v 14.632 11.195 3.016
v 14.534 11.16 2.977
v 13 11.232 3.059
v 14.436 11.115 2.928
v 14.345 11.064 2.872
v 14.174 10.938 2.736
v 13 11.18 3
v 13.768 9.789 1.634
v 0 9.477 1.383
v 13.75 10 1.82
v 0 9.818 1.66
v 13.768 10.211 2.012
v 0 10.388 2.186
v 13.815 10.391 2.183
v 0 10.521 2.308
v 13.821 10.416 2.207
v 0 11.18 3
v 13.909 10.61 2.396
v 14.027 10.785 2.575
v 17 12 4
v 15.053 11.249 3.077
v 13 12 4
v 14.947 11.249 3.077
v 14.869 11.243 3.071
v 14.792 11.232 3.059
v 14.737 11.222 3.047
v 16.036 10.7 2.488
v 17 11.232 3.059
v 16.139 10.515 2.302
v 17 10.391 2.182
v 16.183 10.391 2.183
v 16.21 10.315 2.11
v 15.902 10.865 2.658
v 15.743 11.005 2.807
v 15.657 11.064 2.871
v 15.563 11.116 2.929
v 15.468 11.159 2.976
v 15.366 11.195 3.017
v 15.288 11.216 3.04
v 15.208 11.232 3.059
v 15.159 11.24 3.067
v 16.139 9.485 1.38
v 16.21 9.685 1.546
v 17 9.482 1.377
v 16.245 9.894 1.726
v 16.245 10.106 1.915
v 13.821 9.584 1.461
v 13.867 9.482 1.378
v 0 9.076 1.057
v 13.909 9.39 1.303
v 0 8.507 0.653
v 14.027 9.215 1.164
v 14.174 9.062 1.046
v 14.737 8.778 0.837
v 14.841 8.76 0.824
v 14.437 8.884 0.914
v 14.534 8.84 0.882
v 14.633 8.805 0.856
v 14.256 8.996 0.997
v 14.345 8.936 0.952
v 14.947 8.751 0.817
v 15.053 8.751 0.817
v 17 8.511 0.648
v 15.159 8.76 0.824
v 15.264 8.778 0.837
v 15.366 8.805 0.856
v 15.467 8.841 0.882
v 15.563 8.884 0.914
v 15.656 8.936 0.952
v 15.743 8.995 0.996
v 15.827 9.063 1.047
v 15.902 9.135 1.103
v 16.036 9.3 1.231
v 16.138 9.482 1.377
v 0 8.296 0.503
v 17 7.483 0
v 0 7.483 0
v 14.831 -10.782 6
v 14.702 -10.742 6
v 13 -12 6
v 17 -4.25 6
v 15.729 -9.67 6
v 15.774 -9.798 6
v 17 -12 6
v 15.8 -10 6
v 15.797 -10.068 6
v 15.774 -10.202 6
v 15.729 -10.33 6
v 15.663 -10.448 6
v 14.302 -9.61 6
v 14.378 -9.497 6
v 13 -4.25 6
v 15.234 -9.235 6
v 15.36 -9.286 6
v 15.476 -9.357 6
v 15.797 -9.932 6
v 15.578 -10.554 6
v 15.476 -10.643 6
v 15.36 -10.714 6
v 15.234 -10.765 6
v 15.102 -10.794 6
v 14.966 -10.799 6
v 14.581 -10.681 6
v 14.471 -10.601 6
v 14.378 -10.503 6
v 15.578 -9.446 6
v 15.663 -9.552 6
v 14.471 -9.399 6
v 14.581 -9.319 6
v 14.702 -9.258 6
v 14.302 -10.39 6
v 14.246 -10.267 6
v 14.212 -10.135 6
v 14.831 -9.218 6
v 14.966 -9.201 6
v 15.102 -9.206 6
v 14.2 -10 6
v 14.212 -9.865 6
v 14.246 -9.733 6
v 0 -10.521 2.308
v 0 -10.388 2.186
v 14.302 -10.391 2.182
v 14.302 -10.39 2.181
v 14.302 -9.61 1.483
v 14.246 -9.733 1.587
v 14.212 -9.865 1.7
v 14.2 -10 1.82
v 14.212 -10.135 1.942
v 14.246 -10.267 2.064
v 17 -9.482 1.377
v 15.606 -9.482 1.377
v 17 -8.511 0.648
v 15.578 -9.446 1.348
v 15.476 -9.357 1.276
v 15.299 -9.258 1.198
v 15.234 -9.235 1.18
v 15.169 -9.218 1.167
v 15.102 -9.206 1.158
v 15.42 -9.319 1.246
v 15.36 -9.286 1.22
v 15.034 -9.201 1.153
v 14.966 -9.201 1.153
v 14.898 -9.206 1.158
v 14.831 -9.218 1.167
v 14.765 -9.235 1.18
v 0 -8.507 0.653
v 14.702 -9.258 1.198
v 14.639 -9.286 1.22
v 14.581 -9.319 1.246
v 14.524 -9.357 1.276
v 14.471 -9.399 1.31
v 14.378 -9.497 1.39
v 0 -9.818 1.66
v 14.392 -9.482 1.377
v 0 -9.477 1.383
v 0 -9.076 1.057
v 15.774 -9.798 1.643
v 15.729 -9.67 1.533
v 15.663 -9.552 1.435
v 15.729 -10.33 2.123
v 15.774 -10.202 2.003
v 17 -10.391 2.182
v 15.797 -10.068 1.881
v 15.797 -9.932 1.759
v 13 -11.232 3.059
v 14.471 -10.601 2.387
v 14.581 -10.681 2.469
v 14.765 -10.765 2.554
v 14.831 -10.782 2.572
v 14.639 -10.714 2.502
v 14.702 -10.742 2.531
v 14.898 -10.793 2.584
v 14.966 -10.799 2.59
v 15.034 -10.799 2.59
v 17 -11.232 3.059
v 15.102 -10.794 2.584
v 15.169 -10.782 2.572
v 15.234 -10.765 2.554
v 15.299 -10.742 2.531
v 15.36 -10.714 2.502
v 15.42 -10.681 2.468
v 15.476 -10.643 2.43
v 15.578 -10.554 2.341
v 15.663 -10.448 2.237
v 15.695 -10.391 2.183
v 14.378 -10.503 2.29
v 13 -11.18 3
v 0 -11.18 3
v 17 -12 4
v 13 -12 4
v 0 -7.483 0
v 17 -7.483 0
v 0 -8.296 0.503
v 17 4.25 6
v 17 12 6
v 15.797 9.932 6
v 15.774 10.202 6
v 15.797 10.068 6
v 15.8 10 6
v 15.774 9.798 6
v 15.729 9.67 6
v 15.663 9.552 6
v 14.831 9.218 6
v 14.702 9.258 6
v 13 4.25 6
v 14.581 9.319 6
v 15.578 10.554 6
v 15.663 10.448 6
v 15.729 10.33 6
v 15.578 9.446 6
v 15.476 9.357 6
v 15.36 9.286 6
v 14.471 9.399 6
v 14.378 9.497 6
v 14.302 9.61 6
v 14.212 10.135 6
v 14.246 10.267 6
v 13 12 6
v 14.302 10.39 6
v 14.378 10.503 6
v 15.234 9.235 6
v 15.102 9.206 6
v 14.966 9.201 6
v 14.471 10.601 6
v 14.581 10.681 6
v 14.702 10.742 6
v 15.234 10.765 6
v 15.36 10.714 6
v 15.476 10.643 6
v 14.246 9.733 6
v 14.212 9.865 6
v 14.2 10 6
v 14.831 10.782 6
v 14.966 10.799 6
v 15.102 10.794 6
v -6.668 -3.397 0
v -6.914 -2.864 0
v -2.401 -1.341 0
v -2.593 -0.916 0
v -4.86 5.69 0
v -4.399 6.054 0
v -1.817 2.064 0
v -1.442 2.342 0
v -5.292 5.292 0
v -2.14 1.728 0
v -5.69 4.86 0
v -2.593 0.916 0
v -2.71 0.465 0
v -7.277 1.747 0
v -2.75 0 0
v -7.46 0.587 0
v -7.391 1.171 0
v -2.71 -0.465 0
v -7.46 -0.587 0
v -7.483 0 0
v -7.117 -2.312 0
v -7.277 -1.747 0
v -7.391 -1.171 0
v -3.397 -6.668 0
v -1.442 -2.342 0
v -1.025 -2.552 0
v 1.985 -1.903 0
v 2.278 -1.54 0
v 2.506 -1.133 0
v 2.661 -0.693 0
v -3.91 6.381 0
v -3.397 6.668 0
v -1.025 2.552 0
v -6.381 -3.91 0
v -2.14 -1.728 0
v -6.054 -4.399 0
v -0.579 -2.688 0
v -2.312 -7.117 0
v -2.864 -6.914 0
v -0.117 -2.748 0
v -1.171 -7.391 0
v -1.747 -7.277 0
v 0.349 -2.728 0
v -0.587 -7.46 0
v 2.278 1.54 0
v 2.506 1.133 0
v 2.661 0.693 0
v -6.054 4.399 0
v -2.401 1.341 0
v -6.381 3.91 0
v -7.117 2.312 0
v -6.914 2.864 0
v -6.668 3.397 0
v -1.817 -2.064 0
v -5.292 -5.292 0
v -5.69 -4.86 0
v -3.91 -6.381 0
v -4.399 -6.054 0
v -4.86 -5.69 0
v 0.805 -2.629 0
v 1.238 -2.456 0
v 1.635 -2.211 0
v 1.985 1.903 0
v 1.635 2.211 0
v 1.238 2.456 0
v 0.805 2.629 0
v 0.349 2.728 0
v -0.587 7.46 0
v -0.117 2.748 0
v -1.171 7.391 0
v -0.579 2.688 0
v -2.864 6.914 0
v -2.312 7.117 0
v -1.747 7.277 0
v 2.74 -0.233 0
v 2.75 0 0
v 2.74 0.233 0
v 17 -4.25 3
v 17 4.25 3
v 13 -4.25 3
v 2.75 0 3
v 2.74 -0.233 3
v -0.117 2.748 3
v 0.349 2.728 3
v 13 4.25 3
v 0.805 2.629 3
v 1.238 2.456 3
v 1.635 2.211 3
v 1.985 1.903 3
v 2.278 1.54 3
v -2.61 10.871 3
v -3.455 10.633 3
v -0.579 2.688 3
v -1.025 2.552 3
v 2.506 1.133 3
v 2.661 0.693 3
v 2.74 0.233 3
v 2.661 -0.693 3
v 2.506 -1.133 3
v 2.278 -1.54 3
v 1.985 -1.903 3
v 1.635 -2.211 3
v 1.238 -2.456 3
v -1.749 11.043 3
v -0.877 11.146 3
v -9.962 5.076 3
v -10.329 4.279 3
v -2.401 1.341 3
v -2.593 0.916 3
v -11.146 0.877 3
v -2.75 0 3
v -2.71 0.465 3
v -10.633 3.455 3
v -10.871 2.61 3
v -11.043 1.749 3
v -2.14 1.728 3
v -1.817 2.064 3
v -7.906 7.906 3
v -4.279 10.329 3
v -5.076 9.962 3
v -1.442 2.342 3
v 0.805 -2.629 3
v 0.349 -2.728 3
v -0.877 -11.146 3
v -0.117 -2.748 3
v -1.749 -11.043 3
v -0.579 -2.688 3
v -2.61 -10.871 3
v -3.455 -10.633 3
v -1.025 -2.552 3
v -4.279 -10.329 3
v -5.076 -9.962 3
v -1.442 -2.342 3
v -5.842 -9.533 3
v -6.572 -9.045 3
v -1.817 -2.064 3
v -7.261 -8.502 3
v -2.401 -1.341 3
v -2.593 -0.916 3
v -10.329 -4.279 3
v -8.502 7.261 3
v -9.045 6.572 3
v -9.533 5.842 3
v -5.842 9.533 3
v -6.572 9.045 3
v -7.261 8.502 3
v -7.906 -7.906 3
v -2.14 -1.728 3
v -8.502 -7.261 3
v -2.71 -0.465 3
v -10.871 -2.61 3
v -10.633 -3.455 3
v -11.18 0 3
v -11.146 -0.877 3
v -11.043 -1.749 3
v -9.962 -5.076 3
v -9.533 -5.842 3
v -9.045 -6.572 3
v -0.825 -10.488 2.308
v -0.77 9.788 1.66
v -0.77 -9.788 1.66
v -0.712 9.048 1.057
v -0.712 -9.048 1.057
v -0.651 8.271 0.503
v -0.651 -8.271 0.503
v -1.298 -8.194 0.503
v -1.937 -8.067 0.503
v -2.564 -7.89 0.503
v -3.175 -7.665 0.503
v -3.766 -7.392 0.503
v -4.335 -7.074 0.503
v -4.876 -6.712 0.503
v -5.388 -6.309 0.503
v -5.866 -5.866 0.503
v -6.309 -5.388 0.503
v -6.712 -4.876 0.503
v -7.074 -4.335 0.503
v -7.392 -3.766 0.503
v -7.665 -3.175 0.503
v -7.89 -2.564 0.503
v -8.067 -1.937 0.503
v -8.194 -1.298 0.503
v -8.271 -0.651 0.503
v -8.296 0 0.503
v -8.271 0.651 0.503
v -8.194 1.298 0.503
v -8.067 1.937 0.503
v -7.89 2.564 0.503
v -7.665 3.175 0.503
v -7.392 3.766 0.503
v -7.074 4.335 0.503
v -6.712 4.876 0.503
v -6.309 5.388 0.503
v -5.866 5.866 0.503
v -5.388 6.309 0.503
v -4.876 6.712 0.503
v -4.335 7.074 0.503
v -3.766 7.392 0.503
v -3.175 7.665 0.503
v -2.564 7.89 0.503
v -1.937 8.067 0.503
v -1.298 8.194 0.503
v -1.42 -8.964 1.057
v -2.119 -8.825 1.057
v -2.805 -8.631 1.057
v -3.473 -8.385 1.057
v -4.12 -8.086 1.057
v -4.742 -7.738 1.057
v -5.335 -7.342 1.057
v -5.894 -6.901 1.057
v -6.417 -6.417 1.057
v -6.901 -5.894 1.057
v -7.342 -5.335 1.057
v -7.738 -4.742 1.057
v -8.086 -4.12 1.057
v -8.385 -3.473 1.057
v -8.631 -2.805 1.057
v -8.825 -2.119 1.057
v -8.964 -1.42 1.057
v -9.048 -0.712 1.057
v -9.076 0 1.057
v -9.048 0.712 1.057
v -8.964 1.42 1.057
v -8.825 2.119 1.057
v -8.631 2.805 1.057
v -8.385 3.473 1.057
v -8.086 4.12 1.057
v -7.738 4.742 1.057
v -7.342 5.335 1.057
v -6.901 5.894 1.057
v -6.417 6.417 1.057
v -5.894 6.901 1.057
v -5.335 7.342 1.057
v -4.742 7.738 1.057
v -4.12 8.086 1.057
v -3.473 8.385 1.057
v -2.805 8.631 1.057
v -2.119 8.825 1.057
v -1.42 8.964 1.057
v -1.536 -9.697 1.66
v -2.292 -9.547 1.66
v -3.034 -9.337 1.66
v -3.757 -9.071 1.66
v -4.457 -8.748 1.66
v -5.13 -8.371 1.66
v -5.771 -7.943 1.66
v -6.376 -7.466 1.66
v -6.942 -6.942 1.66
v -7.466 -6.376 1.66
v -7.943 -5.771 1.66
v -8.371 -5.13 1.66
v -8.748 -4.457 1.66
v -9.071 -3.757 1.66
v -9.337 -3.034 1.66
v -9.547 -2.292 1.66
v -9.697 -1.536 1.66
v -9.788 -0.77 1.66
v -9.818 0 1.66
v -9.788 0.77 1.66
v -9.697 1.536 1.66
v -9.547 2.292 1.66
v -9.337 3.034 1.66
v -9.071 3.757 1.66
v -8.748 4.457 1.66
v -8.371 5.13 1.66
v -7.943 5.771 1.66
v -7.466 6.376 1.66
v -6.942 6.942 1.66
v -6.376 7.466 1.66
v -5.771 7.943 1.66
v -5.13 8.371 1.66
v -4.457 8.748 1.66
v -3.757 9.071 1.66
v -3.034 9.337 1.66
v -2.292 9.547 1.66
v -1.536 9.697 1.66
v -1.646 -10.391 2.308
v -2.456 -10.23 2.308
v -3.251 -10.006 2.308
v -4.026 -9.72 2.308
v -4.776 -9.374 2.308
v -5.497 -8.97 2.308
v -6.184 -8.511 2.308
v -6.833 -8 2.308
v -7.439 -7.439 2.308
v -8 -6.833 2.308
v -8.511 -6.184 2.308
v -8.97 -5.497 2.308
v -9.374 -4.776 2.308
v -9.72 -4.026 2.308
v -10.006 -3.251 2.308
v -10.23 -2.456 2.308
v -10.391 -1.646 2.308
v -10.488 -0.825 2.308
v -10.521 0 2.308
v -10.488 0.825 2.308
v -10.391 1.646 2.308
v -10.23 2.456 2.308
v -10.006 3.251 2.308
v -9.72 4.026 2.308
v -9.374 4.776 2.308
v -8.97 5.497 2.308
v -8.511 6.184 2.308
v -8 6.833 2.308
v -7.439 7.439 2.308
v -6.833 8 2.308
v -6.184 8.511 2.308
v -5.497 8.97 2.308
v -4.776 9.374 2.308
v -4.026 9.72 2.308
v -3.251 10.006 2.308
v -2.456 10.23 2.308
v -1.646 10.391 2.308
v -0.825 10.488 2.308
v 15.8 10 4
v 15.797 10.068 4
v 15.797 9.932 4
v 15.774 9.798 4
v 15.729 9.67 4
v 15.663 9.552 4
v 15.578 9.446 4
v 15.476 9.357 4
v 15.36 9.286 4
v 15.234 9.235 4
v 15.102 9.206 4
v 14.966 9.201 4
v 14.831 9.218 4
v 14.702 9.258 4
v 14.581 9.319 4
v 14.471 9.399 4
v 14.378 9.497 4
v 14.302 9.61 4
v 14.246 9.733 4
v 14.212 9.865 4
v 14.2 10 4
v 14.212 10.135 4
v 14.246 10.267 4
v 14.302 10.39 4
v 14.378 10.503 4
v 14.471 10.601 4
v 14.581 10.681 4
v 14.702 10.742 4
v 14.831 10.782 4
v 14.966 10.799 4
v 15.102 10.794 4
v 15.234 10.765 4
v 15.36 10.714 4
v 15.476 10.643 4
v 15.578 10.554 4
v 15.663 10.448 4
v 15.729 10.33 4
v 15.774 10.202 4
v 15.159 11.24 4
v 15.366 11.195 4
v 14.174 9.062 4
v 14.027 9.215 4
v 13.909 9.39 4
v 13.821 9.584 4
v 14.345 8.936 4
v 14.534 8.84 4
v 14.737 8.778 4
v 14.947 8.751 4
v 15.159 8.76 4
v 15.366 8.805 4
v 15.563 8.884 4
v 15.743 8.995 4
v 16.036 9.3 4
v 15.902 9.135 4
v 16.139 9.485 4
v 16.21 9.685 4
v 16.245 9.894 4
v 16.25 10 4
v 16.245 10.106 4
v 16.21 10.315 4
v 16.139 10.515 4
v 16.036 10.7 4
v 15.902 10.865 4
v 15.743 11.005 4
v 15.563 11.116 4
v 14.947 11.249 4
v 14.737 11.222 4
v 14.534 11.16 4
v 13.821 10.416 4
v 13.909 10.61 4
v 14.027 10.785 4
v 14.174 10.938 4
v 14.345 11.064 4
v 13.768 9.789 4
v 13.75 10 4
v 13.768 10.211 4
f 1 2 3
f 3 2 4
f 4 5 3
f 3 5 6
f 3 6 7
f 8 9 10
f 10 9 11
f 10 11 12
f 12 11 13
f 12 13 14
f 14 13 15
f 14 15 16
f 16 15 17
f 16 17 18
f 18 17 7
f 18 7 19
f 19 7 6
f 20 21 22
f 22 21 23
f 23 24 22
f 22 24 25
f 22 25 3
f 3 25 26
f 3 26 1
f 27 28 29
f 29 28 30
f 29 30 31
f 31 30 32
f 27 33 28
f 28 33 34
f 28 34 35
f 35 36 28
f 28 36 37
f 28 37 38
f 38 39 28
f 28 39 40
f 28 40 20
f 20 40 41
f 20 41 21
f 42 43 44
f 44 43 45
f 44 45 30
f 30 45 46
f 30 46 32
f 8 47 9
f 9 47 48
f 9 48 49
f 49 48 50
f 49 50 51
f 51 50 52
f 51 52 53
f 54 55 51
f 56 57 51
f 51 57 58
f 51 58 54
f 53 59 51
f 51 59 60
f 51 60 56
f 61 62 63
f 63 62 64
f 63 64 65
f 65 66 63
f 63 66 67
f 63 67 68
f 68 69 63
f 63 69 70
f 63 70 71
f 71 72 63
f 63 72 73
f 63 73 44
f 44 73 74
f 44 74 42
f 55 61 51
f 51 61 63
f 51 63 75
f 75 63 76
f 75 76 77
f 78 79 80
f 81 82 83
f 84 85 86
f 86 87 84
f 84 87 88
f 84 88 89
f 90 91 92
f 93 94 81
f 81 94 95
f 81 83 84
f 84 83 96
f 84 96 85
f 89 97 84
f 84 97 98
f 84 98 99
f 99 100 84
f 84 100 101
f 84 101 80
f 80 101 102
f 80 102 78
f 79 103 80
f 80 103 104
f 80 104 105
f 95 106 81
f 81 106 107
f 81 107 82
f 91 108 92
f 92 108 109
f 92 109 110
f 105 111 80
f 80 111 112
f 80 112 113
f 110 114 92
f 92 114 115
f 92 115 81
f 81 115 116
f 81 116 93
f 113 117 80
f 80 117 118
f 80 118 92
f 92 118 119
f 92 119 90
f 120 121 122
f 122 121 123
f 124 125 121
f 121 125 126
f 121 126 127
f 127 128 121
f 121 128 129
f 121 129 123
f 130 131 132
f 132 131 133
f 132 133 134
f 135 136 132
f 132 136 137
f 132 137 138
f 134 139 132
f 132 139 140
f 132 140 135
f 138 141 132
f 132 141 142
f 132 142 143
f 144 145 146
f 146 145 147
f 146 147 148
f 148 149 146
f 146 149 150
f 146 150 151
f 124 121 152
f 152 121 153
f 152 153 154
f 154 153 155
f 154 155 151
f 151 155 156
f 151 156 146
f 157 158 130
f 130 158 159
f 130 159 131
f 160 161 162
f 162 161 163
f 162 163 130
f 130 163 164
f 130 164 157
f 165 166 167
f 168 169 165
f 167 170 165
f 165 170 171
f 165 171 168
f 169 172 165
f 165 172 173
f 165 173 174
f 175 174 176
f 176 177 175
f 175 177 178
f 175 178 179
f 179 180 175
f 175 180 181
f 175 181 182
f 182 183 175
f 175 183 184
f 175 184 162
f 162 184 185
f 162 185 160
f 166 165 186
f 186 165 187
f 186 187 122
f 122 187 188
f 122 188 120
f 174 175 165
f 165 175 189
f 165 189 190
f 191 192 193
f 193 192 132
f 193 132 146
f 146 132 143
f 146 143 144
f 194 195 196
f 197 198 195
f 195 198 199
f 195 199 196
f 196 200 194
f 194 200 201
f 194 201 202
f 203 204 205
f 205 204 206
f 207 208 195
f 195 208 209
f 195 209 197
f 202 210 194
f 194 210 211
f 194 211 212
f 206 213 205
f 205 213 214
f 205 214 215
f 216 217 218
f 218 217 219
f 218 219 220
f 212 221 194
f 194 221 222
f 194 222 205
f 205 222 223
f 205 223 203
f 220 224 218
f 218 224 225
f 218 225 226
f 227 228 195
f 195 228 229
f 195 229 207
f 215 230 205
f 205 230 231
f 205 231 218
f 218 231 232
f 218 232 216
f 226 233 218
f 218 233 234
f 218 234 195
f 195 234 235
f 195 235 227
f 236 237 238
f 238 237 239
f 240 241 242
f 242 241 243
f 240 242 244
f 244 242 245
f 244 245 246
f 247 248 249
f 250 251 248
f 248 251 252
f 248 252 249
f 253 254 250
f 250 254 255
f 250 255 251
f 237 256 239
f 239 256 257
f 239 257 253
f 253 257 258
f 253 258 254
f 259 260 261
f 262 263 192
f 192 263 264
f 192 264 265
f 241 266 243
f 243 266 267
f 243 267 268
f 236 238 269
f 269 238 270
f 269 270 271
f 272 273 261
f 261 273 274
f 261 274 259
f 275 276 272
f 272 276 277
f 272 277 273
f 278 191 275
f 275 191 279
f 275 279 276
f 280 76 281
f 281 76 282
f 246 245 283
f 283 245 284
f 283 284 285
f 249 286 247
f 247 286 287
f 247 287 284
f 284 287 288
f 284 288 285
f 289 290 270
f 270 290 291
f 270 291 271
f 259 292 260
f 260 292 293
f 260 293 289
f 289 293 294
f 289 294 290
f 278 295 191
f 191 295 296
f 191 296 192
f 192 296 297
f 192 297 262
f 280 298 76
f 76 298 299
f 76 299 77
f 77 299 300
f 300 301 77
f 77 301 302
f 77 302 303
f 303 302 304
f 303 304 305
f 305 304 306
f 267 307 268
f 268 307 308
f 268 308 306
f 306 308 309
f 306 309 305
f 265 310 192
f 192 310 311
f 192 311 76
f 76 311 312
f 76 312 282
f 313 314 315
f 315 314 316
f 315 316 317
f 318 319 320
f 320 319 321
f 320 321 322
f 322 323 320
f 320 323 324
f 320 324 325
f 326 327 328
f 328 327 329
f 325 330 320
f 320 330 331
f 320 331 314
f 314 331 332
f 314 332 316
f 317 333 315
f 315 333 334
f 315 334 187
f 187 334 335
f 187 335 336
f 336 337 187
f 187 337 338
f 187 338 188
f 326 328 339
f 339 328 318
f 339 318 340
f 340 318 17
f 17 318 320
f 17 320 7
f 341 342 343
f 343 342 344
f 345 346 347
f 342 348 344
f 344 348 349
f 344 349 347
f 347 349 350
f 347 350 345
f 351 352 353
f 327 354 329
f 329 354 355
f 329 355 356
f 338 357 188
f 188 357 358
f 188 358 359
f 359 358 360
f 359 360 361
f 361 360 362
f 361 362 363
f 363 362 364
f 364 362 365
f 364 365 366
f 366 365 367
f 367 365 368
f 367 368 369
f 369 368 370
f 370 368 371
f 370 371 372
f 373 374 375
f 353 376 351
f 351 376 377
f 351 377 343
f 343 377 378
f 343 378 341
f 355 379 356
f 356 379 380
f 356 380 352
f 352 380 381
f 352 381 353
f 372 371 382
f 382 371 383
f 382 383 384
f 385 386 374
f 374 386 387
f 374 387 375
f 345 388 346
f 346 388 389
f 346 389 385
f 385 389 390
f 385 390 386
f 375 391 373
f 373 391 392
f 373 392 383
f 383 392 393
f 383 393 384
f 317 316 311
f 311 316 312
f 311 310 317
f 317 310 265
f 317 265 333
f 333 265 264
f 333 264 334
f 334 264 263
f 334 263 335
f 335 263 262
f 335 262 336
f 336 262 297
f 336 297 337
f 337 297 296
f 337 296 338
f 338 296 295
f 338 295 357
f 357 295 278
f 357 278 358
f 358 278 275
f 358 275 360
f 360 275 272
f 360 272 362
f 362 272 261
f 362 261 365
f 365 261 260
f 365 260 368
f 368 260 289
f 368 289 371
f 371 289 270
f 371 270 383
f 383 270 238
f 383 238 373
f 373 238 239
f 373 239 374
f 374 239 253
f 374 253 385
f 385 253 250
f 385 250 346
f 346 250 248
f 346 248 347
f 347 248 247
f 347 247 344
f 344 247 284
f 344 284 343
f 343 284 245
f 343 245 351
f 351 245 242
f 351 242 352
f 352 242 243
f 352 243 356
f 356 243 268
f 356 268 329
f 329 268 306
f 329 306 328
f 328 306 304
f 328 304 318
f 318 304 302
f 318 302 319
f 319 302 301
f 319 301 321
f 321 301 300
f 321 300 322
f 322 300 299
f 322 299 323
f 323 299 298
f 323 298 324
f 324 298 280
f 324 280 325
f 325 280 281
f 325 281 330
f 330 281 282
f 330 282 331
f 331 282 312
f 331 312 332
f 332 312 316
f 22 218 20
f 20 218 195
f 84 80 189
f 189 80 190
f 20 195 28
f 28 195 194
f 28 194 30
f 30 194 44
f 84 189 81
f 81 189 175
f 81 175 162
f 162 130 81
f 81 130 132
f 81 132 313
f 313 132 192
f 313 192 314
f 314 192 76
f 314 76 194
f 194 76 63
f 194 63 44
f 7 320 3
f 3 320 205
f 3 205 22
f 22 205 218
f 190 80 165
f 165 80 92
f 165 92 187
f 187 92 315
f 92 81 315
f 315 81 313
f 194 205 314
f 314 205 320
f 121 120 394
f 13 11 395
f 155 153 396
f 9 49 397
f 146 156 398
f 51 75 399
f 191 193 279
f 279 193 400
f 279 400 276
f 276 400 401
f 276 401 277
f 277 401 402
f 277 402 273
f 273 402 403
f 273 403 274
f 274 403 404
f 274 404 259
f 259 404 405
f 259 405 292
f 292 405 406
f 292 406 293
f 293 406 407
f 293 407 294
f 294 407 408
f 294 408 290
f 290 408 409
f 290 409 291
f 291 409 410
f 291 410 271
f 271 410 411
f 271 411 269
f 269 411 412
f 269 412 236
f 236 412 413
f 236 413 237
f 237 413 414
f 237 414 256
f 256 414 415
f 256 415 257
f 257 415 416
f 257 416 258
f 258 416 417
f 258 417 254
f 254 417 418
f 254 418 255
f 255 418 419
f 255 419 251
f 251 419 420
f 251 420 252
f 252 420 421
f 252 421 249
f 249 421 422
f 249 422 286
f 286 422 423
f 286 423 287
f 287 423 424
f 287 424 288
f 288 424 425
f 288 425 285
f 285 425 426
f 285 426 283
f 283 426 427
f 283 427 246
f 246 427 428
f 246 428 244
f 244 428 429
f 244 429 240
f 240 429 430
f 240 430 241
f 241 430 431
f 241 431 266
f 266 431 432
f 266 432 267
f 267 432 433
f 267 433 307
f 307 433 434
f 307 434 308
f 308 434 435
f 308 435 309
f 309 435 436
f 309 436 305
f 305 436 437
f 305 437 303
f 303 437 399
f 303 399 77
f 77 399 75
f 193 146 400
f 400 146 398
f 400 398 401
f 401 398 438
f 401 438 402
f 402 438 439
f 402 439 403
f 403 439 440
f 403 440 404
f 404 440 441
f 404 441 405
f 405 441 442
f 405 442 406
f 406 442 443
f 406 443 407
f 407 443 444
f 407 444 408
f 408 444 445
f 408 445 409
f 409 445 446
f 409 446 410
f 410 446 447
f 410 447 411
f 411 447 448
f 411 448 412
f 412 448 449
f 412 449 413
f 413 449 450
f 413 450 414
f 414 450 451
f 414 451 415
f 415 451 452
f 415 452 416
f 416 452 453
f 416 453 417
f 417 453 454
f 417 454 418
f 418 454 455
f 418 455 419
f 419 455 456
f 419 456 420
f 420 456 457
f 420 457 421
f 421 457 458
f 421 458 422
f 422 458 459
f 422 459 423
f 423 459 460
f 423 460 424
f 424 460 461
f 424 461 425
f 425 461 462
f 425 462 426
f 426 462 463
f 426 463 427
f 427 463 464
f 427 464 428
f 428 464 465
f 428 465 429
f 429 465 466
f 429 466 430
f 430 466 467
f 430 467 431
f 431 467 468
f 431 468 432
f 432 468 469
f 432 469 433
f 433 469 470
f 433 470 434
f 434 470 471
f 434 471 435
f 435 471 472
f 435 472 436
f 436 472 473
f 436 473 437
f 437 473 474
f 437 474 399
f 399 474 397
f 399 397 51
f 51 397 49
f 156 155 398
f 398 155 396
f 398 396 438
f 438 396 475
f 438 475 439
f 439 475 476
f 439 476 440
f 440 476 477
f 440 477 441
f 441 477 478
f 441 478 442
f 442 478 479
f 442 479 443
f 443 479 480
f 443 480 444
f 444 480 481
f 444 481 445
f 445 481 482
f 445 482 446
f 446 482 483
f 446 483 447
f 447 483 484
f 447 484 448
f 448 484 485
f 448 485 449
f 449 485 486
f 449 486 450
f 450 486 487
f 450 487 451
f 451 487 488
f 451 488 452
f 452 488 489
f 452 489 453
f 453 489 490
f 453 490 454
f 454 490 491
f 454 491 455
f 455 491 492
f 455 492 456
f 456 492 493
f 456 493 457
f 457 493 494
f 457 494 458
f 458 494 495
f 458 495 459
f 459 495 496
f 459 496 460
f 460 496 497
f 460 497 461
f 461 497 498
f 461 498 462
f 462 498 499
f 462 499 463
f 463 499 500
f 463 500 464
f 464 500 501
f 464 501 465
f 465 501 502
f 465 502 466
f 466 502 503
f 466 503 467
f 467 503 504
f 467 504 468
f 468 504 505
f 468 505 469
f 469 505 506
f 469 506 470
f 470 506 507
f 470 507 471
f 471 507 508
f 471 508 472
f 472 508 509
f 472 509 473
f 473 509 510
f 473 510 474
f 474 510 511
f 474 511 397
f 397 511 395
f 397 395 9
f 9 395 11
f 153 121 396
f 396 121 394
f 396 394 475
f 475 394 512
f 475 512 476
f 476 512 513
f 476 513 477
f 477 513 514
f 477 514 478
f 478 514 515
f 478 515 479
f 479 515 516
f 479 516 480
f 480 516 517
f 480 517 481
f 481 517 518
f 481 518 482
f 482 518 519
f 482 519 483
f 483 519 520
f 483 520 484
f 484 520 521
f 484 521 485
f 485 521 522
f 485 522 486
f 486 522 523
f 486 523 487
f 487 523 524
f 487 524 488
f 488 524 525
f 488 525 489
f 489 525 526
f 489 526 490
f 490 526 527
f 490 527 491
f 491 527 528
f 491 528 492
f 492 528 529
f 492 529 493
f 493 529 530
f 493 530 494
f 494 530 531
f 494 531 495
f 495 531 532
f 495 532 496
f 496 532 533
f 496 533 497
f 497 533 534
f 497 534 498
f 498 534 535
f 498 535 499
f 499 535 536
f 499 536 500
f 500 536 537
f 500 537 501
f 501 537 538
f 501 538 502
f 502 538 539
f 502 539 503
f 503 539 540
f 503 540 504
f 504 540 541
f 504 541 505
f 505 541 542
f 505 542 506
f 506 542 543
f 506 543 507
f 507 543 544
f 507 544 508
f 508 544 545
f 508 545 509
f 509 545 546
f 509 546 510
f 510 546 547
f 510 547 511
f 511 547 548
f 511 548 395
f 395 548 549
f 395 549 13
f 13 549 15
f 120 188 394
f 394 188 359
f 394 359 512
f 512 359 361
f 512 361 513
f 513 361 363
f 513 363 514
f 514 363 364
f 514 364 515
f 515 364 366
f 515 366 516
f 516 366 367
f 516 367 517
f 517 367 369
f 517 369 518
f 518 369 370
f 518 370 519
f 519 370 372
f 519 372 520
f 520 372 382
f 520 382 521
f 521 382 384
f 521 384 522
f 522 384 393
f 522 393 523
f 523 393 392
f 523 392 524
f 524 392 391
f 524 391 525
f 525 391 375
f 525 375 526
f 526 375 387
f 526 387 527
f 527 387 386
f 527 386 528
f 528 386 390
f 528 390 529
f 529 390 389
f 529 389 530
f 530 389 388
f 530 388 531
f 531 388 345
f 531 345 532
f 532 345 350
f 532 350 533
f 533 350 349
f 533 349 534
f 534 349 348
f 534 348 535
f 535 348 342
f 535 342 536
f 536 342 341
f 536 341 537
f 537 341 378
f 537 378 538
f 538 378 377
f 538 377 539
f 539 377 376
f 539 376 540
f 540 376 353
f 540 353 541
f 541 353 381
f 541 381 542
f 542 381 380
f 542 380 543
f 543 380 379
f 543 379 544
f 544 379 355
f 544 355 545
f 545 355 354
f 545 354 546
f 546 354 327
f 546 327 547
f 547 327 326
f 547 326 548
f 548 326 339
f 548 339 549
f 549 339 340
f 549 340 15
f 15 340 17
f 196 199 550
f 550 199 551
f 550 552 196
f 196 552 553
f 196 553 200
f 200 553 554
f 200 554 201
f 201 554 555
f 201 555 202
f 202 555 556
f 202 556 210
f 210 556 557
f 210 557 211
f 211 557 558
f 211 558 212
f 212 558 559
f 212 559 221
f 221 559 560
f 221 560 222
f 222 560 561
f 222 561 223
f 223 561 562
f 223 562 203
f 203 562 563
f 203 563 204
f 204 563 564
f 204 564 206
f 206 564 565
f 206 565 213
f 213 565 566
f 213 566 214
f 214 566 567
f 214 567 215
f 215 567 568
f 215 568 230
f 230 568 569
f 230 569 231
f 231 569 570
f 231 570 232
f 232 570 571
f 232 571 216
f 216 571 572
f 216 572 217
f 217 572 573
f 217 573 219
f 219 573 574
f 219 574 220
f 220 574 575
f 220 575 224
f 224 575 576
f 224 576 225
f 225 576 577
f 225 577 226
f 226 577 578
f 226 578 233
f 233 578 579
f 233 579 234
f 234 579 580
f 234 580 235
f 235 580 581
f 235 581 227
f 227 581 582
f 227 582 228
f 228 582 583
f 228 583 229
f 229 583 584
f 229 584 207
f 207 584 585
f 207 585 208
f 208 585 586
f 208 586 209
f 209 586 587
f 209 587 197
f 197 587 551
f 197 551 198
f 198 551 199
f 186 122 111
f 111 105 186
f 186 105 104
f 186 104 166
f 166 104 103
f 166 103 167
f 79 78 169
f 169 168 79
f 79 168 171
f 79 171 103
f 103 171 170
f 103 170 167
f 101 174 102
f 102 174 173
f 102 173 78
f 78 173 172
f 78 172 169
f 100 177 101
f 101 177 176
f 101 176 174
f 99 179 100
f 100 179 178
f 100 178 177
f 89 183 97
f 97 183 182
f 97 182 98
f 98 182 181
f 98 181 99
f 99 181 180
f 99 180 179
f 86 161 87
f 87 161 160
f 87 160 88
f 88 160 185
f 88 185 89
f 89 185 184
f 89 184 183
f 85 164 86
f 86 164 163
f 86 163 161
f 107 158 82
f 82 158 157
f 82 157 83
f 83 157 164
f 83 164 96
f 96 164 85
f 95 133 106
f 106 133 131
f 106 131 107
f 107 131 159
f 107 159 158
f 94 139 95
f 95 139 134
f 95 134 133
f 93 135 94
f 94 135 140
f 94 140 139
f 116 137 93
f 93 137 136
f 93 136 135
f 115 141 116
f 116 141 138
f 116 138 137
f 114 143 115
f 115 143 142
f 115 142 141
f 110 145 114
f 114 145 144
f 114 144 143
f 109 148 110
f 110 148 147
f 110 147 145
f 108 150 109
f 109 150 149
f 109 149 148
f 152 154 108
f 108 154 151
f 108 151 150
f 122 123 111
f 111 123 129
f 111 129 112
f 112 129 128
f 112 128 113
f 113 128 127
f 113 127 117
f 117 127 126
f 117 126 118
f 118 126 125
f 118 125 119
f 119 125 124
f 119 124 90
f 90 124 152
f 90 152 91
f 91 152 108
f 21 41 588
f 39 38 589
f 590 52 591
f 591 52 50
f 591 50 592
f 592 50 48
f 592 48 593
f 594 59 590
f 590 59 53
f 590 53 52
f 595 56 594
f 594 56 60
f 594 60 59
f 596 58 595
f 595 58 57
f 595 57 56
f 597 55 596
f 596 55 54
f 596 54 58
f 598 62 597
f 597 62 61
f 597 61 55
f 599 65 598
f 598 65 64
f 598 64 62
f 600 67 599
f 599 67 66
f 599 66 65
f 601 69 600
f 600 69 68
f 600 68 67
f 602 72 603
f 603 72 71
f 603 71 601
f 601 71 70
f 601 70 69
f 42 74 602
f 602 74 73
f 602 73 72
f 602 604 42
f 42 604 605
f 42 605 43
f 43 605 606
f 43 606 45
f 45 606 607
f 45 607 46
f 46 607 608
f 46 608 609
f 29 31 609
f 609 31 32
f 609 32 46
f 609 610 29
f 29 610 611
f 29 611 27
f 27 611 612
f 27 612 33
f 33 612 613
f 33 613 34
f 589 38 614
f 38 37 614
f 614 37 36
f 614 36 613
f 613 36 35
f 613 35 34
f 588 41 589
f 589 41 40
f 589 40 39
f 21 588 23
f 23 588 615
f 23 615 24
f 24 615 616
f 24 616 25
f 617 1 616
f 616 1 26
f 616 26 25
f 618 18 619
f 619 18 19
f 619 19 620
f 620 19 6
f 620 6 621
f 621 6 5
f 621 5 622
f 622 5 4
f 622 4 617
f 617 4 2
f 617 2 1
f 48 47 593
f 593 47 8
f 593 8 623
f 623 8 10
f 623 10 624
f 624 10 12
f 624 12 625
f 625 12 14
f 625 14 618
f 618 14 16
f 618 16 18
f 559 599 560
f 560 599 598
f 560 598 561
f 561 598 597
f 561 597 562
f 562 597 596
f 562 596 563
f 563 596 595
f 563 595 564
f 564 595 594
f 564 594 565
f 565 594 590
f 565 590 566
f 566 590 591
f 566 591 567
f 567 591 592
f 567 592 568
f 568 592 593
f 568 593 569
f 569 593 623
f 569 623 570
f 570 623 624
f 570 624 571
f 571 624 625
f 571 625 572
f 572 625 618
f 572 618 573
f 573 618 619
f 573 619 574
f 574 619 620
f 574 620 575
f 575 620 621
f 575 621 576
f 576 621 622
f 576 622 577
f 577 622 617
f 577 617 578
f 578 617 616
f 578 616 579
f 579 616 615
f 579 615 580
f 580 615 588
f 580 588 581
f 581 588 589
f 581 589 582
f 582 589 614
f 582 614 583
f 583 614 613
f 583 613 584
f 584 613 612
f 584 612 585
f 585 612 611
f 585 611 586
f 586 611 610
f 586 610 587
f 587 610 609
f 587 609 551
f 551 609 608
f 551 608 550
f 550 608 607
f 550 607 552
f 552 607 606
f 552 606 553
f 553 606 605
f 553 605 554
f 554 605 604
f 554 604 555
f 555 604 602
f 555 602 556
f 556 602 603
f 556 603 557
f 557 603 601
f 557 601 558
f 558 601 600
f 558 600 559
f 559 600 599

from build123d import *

# Parameters (mm, degrees)
SKETCH1_R           = 2.75
BOSS_EXTRUDE1_DEPTH = 6
BODY_START          = 3
SKETCH2_R           = 2.75
BODY_HOLE_DEPTH     = 3
CUT_EXTRUDE2_DEPTH  = 23.226110771
CUT_REVOLVE1_ANGLE  = 180
SKETCH7_R           = 0.8
SCREW_HOLES_DEPTH   = 22.656407828
SKETCH9_R           = 1.25
SCREW_HEADS_DEPTH   = 4


with BuildPart() as part:
    # Sketch1 → Boss-Extrude1 (new body)
    with BuildSketch(Plane.XY):
        with BuildLine():
            Line((17, -12), (17, 12))
            Line((17, 12), (5, 12))
            ThreePointArc((5, 12), (-13, 0), (5, -12))
            Line((5, -12), (17, -12))
        make_face()
        Circle(SKETCH1_R, mode=Mode.SUBTRACT)
    extrude(amount=BOSS_EXTRUDE1_DEPTH)

    # Sketch2 → Body Hole (cut)
    with BuildSketch(Plane.XY.offset(BODY_START)):
        with BuildLine():
            ThreePointArc((5, 12), (-13, 0), (5, -12))
            Line((5, -12), (13, -12))
            Line((13, -12), (13, -4.25))
            Line((13, -4.25), (17, -4.25))
            Line((17, -4.25), (17, 4.25))
            Line((17, 4.25), (13, 4.25))
            Line((13, 4.25), (13, 12))
            Line((13, 12), (5, 12))
        make_face()
        Circle(SKETCH2_R, mode=Mode.SUBTRACT)
    extrude(amount=BODY_HOLE_DEPTH, mode=Mode.SUBTRACT)

    # Sketch3 → Cut-Extrude2 (cut, through all)
    with BuildSketch(Plane(origin=(0, 0, 0), x_dir=(0, 0, -1), z_dir=(1, 0, 0))):
        with BuildLine():
            Line((2, 15), (-13, 15))
            ThreePointArc((-13, 15), (-2.393398282, 10.606601718), (2, 0))
            Line((2, 0), (2, 15))
        make_face()
        with BuildLine():
            Line((2, -15), (2, 0))
            ThreePointArc((2, 0), (-2.393398282, -10.606601718), (-13, -15))
            Line((-13, -15), (2, -15))
        make_face()
    extrude(amount=CUT_EXTRUDE2_DEPTH, mode=Mode.SUBTRACT)

    # Sketch6 → Cut-Revolve1 (revolve, cut)
    with BuildSketch(Plane(origin=(0, 0, 0), x_dir=(0, 0, -1), z_dir=(1, 0, 0))):
        with BuildLine():
            Line((1, 15), (-13, 15))
            ThreePointArc((-13, 15), (-4.508164866, 12.36481848), (1, 5.385164807))
            Line((1, 5.385164807), (2, 5.385164807))
            Line((2, 5.385164807), (2, 15))
            Line((2, 15), (1, 15))
        make_face()
    revolve(axis=Axis((0, 0, 0), (0, 0, 1)), revolution_arc=CUT_REVOLVE1_ANGLE, mode=Mode.SUBTRACT)

    # Sketch7 → Screw Holes (cut, through all)
    with BuildSketch(Plane.XY):
        with Locations(Location((15, 10, 0), (0, 0, 180))):
            Circle(SKETCH7_R)
        with Locations(Location((15, -10, 0), (0, 0, 180))):
            Circle(SKETCH7_R)
    extrude(amount=SCREW_HOLES_DEPTH, mode=Mode.SUBTRACT)

    # Sketch9 → Screw Heads (cut)
    with BuildSketch(Plane.XY):
        with Locations(Location((15, 10, 0), (0, 0, 180))):
            Circle(SKETCH9_R)
    extrude(amount=SCREW_HEADS_DEPTH, mode=Mode.SUBTRACT)


solid = part.part
